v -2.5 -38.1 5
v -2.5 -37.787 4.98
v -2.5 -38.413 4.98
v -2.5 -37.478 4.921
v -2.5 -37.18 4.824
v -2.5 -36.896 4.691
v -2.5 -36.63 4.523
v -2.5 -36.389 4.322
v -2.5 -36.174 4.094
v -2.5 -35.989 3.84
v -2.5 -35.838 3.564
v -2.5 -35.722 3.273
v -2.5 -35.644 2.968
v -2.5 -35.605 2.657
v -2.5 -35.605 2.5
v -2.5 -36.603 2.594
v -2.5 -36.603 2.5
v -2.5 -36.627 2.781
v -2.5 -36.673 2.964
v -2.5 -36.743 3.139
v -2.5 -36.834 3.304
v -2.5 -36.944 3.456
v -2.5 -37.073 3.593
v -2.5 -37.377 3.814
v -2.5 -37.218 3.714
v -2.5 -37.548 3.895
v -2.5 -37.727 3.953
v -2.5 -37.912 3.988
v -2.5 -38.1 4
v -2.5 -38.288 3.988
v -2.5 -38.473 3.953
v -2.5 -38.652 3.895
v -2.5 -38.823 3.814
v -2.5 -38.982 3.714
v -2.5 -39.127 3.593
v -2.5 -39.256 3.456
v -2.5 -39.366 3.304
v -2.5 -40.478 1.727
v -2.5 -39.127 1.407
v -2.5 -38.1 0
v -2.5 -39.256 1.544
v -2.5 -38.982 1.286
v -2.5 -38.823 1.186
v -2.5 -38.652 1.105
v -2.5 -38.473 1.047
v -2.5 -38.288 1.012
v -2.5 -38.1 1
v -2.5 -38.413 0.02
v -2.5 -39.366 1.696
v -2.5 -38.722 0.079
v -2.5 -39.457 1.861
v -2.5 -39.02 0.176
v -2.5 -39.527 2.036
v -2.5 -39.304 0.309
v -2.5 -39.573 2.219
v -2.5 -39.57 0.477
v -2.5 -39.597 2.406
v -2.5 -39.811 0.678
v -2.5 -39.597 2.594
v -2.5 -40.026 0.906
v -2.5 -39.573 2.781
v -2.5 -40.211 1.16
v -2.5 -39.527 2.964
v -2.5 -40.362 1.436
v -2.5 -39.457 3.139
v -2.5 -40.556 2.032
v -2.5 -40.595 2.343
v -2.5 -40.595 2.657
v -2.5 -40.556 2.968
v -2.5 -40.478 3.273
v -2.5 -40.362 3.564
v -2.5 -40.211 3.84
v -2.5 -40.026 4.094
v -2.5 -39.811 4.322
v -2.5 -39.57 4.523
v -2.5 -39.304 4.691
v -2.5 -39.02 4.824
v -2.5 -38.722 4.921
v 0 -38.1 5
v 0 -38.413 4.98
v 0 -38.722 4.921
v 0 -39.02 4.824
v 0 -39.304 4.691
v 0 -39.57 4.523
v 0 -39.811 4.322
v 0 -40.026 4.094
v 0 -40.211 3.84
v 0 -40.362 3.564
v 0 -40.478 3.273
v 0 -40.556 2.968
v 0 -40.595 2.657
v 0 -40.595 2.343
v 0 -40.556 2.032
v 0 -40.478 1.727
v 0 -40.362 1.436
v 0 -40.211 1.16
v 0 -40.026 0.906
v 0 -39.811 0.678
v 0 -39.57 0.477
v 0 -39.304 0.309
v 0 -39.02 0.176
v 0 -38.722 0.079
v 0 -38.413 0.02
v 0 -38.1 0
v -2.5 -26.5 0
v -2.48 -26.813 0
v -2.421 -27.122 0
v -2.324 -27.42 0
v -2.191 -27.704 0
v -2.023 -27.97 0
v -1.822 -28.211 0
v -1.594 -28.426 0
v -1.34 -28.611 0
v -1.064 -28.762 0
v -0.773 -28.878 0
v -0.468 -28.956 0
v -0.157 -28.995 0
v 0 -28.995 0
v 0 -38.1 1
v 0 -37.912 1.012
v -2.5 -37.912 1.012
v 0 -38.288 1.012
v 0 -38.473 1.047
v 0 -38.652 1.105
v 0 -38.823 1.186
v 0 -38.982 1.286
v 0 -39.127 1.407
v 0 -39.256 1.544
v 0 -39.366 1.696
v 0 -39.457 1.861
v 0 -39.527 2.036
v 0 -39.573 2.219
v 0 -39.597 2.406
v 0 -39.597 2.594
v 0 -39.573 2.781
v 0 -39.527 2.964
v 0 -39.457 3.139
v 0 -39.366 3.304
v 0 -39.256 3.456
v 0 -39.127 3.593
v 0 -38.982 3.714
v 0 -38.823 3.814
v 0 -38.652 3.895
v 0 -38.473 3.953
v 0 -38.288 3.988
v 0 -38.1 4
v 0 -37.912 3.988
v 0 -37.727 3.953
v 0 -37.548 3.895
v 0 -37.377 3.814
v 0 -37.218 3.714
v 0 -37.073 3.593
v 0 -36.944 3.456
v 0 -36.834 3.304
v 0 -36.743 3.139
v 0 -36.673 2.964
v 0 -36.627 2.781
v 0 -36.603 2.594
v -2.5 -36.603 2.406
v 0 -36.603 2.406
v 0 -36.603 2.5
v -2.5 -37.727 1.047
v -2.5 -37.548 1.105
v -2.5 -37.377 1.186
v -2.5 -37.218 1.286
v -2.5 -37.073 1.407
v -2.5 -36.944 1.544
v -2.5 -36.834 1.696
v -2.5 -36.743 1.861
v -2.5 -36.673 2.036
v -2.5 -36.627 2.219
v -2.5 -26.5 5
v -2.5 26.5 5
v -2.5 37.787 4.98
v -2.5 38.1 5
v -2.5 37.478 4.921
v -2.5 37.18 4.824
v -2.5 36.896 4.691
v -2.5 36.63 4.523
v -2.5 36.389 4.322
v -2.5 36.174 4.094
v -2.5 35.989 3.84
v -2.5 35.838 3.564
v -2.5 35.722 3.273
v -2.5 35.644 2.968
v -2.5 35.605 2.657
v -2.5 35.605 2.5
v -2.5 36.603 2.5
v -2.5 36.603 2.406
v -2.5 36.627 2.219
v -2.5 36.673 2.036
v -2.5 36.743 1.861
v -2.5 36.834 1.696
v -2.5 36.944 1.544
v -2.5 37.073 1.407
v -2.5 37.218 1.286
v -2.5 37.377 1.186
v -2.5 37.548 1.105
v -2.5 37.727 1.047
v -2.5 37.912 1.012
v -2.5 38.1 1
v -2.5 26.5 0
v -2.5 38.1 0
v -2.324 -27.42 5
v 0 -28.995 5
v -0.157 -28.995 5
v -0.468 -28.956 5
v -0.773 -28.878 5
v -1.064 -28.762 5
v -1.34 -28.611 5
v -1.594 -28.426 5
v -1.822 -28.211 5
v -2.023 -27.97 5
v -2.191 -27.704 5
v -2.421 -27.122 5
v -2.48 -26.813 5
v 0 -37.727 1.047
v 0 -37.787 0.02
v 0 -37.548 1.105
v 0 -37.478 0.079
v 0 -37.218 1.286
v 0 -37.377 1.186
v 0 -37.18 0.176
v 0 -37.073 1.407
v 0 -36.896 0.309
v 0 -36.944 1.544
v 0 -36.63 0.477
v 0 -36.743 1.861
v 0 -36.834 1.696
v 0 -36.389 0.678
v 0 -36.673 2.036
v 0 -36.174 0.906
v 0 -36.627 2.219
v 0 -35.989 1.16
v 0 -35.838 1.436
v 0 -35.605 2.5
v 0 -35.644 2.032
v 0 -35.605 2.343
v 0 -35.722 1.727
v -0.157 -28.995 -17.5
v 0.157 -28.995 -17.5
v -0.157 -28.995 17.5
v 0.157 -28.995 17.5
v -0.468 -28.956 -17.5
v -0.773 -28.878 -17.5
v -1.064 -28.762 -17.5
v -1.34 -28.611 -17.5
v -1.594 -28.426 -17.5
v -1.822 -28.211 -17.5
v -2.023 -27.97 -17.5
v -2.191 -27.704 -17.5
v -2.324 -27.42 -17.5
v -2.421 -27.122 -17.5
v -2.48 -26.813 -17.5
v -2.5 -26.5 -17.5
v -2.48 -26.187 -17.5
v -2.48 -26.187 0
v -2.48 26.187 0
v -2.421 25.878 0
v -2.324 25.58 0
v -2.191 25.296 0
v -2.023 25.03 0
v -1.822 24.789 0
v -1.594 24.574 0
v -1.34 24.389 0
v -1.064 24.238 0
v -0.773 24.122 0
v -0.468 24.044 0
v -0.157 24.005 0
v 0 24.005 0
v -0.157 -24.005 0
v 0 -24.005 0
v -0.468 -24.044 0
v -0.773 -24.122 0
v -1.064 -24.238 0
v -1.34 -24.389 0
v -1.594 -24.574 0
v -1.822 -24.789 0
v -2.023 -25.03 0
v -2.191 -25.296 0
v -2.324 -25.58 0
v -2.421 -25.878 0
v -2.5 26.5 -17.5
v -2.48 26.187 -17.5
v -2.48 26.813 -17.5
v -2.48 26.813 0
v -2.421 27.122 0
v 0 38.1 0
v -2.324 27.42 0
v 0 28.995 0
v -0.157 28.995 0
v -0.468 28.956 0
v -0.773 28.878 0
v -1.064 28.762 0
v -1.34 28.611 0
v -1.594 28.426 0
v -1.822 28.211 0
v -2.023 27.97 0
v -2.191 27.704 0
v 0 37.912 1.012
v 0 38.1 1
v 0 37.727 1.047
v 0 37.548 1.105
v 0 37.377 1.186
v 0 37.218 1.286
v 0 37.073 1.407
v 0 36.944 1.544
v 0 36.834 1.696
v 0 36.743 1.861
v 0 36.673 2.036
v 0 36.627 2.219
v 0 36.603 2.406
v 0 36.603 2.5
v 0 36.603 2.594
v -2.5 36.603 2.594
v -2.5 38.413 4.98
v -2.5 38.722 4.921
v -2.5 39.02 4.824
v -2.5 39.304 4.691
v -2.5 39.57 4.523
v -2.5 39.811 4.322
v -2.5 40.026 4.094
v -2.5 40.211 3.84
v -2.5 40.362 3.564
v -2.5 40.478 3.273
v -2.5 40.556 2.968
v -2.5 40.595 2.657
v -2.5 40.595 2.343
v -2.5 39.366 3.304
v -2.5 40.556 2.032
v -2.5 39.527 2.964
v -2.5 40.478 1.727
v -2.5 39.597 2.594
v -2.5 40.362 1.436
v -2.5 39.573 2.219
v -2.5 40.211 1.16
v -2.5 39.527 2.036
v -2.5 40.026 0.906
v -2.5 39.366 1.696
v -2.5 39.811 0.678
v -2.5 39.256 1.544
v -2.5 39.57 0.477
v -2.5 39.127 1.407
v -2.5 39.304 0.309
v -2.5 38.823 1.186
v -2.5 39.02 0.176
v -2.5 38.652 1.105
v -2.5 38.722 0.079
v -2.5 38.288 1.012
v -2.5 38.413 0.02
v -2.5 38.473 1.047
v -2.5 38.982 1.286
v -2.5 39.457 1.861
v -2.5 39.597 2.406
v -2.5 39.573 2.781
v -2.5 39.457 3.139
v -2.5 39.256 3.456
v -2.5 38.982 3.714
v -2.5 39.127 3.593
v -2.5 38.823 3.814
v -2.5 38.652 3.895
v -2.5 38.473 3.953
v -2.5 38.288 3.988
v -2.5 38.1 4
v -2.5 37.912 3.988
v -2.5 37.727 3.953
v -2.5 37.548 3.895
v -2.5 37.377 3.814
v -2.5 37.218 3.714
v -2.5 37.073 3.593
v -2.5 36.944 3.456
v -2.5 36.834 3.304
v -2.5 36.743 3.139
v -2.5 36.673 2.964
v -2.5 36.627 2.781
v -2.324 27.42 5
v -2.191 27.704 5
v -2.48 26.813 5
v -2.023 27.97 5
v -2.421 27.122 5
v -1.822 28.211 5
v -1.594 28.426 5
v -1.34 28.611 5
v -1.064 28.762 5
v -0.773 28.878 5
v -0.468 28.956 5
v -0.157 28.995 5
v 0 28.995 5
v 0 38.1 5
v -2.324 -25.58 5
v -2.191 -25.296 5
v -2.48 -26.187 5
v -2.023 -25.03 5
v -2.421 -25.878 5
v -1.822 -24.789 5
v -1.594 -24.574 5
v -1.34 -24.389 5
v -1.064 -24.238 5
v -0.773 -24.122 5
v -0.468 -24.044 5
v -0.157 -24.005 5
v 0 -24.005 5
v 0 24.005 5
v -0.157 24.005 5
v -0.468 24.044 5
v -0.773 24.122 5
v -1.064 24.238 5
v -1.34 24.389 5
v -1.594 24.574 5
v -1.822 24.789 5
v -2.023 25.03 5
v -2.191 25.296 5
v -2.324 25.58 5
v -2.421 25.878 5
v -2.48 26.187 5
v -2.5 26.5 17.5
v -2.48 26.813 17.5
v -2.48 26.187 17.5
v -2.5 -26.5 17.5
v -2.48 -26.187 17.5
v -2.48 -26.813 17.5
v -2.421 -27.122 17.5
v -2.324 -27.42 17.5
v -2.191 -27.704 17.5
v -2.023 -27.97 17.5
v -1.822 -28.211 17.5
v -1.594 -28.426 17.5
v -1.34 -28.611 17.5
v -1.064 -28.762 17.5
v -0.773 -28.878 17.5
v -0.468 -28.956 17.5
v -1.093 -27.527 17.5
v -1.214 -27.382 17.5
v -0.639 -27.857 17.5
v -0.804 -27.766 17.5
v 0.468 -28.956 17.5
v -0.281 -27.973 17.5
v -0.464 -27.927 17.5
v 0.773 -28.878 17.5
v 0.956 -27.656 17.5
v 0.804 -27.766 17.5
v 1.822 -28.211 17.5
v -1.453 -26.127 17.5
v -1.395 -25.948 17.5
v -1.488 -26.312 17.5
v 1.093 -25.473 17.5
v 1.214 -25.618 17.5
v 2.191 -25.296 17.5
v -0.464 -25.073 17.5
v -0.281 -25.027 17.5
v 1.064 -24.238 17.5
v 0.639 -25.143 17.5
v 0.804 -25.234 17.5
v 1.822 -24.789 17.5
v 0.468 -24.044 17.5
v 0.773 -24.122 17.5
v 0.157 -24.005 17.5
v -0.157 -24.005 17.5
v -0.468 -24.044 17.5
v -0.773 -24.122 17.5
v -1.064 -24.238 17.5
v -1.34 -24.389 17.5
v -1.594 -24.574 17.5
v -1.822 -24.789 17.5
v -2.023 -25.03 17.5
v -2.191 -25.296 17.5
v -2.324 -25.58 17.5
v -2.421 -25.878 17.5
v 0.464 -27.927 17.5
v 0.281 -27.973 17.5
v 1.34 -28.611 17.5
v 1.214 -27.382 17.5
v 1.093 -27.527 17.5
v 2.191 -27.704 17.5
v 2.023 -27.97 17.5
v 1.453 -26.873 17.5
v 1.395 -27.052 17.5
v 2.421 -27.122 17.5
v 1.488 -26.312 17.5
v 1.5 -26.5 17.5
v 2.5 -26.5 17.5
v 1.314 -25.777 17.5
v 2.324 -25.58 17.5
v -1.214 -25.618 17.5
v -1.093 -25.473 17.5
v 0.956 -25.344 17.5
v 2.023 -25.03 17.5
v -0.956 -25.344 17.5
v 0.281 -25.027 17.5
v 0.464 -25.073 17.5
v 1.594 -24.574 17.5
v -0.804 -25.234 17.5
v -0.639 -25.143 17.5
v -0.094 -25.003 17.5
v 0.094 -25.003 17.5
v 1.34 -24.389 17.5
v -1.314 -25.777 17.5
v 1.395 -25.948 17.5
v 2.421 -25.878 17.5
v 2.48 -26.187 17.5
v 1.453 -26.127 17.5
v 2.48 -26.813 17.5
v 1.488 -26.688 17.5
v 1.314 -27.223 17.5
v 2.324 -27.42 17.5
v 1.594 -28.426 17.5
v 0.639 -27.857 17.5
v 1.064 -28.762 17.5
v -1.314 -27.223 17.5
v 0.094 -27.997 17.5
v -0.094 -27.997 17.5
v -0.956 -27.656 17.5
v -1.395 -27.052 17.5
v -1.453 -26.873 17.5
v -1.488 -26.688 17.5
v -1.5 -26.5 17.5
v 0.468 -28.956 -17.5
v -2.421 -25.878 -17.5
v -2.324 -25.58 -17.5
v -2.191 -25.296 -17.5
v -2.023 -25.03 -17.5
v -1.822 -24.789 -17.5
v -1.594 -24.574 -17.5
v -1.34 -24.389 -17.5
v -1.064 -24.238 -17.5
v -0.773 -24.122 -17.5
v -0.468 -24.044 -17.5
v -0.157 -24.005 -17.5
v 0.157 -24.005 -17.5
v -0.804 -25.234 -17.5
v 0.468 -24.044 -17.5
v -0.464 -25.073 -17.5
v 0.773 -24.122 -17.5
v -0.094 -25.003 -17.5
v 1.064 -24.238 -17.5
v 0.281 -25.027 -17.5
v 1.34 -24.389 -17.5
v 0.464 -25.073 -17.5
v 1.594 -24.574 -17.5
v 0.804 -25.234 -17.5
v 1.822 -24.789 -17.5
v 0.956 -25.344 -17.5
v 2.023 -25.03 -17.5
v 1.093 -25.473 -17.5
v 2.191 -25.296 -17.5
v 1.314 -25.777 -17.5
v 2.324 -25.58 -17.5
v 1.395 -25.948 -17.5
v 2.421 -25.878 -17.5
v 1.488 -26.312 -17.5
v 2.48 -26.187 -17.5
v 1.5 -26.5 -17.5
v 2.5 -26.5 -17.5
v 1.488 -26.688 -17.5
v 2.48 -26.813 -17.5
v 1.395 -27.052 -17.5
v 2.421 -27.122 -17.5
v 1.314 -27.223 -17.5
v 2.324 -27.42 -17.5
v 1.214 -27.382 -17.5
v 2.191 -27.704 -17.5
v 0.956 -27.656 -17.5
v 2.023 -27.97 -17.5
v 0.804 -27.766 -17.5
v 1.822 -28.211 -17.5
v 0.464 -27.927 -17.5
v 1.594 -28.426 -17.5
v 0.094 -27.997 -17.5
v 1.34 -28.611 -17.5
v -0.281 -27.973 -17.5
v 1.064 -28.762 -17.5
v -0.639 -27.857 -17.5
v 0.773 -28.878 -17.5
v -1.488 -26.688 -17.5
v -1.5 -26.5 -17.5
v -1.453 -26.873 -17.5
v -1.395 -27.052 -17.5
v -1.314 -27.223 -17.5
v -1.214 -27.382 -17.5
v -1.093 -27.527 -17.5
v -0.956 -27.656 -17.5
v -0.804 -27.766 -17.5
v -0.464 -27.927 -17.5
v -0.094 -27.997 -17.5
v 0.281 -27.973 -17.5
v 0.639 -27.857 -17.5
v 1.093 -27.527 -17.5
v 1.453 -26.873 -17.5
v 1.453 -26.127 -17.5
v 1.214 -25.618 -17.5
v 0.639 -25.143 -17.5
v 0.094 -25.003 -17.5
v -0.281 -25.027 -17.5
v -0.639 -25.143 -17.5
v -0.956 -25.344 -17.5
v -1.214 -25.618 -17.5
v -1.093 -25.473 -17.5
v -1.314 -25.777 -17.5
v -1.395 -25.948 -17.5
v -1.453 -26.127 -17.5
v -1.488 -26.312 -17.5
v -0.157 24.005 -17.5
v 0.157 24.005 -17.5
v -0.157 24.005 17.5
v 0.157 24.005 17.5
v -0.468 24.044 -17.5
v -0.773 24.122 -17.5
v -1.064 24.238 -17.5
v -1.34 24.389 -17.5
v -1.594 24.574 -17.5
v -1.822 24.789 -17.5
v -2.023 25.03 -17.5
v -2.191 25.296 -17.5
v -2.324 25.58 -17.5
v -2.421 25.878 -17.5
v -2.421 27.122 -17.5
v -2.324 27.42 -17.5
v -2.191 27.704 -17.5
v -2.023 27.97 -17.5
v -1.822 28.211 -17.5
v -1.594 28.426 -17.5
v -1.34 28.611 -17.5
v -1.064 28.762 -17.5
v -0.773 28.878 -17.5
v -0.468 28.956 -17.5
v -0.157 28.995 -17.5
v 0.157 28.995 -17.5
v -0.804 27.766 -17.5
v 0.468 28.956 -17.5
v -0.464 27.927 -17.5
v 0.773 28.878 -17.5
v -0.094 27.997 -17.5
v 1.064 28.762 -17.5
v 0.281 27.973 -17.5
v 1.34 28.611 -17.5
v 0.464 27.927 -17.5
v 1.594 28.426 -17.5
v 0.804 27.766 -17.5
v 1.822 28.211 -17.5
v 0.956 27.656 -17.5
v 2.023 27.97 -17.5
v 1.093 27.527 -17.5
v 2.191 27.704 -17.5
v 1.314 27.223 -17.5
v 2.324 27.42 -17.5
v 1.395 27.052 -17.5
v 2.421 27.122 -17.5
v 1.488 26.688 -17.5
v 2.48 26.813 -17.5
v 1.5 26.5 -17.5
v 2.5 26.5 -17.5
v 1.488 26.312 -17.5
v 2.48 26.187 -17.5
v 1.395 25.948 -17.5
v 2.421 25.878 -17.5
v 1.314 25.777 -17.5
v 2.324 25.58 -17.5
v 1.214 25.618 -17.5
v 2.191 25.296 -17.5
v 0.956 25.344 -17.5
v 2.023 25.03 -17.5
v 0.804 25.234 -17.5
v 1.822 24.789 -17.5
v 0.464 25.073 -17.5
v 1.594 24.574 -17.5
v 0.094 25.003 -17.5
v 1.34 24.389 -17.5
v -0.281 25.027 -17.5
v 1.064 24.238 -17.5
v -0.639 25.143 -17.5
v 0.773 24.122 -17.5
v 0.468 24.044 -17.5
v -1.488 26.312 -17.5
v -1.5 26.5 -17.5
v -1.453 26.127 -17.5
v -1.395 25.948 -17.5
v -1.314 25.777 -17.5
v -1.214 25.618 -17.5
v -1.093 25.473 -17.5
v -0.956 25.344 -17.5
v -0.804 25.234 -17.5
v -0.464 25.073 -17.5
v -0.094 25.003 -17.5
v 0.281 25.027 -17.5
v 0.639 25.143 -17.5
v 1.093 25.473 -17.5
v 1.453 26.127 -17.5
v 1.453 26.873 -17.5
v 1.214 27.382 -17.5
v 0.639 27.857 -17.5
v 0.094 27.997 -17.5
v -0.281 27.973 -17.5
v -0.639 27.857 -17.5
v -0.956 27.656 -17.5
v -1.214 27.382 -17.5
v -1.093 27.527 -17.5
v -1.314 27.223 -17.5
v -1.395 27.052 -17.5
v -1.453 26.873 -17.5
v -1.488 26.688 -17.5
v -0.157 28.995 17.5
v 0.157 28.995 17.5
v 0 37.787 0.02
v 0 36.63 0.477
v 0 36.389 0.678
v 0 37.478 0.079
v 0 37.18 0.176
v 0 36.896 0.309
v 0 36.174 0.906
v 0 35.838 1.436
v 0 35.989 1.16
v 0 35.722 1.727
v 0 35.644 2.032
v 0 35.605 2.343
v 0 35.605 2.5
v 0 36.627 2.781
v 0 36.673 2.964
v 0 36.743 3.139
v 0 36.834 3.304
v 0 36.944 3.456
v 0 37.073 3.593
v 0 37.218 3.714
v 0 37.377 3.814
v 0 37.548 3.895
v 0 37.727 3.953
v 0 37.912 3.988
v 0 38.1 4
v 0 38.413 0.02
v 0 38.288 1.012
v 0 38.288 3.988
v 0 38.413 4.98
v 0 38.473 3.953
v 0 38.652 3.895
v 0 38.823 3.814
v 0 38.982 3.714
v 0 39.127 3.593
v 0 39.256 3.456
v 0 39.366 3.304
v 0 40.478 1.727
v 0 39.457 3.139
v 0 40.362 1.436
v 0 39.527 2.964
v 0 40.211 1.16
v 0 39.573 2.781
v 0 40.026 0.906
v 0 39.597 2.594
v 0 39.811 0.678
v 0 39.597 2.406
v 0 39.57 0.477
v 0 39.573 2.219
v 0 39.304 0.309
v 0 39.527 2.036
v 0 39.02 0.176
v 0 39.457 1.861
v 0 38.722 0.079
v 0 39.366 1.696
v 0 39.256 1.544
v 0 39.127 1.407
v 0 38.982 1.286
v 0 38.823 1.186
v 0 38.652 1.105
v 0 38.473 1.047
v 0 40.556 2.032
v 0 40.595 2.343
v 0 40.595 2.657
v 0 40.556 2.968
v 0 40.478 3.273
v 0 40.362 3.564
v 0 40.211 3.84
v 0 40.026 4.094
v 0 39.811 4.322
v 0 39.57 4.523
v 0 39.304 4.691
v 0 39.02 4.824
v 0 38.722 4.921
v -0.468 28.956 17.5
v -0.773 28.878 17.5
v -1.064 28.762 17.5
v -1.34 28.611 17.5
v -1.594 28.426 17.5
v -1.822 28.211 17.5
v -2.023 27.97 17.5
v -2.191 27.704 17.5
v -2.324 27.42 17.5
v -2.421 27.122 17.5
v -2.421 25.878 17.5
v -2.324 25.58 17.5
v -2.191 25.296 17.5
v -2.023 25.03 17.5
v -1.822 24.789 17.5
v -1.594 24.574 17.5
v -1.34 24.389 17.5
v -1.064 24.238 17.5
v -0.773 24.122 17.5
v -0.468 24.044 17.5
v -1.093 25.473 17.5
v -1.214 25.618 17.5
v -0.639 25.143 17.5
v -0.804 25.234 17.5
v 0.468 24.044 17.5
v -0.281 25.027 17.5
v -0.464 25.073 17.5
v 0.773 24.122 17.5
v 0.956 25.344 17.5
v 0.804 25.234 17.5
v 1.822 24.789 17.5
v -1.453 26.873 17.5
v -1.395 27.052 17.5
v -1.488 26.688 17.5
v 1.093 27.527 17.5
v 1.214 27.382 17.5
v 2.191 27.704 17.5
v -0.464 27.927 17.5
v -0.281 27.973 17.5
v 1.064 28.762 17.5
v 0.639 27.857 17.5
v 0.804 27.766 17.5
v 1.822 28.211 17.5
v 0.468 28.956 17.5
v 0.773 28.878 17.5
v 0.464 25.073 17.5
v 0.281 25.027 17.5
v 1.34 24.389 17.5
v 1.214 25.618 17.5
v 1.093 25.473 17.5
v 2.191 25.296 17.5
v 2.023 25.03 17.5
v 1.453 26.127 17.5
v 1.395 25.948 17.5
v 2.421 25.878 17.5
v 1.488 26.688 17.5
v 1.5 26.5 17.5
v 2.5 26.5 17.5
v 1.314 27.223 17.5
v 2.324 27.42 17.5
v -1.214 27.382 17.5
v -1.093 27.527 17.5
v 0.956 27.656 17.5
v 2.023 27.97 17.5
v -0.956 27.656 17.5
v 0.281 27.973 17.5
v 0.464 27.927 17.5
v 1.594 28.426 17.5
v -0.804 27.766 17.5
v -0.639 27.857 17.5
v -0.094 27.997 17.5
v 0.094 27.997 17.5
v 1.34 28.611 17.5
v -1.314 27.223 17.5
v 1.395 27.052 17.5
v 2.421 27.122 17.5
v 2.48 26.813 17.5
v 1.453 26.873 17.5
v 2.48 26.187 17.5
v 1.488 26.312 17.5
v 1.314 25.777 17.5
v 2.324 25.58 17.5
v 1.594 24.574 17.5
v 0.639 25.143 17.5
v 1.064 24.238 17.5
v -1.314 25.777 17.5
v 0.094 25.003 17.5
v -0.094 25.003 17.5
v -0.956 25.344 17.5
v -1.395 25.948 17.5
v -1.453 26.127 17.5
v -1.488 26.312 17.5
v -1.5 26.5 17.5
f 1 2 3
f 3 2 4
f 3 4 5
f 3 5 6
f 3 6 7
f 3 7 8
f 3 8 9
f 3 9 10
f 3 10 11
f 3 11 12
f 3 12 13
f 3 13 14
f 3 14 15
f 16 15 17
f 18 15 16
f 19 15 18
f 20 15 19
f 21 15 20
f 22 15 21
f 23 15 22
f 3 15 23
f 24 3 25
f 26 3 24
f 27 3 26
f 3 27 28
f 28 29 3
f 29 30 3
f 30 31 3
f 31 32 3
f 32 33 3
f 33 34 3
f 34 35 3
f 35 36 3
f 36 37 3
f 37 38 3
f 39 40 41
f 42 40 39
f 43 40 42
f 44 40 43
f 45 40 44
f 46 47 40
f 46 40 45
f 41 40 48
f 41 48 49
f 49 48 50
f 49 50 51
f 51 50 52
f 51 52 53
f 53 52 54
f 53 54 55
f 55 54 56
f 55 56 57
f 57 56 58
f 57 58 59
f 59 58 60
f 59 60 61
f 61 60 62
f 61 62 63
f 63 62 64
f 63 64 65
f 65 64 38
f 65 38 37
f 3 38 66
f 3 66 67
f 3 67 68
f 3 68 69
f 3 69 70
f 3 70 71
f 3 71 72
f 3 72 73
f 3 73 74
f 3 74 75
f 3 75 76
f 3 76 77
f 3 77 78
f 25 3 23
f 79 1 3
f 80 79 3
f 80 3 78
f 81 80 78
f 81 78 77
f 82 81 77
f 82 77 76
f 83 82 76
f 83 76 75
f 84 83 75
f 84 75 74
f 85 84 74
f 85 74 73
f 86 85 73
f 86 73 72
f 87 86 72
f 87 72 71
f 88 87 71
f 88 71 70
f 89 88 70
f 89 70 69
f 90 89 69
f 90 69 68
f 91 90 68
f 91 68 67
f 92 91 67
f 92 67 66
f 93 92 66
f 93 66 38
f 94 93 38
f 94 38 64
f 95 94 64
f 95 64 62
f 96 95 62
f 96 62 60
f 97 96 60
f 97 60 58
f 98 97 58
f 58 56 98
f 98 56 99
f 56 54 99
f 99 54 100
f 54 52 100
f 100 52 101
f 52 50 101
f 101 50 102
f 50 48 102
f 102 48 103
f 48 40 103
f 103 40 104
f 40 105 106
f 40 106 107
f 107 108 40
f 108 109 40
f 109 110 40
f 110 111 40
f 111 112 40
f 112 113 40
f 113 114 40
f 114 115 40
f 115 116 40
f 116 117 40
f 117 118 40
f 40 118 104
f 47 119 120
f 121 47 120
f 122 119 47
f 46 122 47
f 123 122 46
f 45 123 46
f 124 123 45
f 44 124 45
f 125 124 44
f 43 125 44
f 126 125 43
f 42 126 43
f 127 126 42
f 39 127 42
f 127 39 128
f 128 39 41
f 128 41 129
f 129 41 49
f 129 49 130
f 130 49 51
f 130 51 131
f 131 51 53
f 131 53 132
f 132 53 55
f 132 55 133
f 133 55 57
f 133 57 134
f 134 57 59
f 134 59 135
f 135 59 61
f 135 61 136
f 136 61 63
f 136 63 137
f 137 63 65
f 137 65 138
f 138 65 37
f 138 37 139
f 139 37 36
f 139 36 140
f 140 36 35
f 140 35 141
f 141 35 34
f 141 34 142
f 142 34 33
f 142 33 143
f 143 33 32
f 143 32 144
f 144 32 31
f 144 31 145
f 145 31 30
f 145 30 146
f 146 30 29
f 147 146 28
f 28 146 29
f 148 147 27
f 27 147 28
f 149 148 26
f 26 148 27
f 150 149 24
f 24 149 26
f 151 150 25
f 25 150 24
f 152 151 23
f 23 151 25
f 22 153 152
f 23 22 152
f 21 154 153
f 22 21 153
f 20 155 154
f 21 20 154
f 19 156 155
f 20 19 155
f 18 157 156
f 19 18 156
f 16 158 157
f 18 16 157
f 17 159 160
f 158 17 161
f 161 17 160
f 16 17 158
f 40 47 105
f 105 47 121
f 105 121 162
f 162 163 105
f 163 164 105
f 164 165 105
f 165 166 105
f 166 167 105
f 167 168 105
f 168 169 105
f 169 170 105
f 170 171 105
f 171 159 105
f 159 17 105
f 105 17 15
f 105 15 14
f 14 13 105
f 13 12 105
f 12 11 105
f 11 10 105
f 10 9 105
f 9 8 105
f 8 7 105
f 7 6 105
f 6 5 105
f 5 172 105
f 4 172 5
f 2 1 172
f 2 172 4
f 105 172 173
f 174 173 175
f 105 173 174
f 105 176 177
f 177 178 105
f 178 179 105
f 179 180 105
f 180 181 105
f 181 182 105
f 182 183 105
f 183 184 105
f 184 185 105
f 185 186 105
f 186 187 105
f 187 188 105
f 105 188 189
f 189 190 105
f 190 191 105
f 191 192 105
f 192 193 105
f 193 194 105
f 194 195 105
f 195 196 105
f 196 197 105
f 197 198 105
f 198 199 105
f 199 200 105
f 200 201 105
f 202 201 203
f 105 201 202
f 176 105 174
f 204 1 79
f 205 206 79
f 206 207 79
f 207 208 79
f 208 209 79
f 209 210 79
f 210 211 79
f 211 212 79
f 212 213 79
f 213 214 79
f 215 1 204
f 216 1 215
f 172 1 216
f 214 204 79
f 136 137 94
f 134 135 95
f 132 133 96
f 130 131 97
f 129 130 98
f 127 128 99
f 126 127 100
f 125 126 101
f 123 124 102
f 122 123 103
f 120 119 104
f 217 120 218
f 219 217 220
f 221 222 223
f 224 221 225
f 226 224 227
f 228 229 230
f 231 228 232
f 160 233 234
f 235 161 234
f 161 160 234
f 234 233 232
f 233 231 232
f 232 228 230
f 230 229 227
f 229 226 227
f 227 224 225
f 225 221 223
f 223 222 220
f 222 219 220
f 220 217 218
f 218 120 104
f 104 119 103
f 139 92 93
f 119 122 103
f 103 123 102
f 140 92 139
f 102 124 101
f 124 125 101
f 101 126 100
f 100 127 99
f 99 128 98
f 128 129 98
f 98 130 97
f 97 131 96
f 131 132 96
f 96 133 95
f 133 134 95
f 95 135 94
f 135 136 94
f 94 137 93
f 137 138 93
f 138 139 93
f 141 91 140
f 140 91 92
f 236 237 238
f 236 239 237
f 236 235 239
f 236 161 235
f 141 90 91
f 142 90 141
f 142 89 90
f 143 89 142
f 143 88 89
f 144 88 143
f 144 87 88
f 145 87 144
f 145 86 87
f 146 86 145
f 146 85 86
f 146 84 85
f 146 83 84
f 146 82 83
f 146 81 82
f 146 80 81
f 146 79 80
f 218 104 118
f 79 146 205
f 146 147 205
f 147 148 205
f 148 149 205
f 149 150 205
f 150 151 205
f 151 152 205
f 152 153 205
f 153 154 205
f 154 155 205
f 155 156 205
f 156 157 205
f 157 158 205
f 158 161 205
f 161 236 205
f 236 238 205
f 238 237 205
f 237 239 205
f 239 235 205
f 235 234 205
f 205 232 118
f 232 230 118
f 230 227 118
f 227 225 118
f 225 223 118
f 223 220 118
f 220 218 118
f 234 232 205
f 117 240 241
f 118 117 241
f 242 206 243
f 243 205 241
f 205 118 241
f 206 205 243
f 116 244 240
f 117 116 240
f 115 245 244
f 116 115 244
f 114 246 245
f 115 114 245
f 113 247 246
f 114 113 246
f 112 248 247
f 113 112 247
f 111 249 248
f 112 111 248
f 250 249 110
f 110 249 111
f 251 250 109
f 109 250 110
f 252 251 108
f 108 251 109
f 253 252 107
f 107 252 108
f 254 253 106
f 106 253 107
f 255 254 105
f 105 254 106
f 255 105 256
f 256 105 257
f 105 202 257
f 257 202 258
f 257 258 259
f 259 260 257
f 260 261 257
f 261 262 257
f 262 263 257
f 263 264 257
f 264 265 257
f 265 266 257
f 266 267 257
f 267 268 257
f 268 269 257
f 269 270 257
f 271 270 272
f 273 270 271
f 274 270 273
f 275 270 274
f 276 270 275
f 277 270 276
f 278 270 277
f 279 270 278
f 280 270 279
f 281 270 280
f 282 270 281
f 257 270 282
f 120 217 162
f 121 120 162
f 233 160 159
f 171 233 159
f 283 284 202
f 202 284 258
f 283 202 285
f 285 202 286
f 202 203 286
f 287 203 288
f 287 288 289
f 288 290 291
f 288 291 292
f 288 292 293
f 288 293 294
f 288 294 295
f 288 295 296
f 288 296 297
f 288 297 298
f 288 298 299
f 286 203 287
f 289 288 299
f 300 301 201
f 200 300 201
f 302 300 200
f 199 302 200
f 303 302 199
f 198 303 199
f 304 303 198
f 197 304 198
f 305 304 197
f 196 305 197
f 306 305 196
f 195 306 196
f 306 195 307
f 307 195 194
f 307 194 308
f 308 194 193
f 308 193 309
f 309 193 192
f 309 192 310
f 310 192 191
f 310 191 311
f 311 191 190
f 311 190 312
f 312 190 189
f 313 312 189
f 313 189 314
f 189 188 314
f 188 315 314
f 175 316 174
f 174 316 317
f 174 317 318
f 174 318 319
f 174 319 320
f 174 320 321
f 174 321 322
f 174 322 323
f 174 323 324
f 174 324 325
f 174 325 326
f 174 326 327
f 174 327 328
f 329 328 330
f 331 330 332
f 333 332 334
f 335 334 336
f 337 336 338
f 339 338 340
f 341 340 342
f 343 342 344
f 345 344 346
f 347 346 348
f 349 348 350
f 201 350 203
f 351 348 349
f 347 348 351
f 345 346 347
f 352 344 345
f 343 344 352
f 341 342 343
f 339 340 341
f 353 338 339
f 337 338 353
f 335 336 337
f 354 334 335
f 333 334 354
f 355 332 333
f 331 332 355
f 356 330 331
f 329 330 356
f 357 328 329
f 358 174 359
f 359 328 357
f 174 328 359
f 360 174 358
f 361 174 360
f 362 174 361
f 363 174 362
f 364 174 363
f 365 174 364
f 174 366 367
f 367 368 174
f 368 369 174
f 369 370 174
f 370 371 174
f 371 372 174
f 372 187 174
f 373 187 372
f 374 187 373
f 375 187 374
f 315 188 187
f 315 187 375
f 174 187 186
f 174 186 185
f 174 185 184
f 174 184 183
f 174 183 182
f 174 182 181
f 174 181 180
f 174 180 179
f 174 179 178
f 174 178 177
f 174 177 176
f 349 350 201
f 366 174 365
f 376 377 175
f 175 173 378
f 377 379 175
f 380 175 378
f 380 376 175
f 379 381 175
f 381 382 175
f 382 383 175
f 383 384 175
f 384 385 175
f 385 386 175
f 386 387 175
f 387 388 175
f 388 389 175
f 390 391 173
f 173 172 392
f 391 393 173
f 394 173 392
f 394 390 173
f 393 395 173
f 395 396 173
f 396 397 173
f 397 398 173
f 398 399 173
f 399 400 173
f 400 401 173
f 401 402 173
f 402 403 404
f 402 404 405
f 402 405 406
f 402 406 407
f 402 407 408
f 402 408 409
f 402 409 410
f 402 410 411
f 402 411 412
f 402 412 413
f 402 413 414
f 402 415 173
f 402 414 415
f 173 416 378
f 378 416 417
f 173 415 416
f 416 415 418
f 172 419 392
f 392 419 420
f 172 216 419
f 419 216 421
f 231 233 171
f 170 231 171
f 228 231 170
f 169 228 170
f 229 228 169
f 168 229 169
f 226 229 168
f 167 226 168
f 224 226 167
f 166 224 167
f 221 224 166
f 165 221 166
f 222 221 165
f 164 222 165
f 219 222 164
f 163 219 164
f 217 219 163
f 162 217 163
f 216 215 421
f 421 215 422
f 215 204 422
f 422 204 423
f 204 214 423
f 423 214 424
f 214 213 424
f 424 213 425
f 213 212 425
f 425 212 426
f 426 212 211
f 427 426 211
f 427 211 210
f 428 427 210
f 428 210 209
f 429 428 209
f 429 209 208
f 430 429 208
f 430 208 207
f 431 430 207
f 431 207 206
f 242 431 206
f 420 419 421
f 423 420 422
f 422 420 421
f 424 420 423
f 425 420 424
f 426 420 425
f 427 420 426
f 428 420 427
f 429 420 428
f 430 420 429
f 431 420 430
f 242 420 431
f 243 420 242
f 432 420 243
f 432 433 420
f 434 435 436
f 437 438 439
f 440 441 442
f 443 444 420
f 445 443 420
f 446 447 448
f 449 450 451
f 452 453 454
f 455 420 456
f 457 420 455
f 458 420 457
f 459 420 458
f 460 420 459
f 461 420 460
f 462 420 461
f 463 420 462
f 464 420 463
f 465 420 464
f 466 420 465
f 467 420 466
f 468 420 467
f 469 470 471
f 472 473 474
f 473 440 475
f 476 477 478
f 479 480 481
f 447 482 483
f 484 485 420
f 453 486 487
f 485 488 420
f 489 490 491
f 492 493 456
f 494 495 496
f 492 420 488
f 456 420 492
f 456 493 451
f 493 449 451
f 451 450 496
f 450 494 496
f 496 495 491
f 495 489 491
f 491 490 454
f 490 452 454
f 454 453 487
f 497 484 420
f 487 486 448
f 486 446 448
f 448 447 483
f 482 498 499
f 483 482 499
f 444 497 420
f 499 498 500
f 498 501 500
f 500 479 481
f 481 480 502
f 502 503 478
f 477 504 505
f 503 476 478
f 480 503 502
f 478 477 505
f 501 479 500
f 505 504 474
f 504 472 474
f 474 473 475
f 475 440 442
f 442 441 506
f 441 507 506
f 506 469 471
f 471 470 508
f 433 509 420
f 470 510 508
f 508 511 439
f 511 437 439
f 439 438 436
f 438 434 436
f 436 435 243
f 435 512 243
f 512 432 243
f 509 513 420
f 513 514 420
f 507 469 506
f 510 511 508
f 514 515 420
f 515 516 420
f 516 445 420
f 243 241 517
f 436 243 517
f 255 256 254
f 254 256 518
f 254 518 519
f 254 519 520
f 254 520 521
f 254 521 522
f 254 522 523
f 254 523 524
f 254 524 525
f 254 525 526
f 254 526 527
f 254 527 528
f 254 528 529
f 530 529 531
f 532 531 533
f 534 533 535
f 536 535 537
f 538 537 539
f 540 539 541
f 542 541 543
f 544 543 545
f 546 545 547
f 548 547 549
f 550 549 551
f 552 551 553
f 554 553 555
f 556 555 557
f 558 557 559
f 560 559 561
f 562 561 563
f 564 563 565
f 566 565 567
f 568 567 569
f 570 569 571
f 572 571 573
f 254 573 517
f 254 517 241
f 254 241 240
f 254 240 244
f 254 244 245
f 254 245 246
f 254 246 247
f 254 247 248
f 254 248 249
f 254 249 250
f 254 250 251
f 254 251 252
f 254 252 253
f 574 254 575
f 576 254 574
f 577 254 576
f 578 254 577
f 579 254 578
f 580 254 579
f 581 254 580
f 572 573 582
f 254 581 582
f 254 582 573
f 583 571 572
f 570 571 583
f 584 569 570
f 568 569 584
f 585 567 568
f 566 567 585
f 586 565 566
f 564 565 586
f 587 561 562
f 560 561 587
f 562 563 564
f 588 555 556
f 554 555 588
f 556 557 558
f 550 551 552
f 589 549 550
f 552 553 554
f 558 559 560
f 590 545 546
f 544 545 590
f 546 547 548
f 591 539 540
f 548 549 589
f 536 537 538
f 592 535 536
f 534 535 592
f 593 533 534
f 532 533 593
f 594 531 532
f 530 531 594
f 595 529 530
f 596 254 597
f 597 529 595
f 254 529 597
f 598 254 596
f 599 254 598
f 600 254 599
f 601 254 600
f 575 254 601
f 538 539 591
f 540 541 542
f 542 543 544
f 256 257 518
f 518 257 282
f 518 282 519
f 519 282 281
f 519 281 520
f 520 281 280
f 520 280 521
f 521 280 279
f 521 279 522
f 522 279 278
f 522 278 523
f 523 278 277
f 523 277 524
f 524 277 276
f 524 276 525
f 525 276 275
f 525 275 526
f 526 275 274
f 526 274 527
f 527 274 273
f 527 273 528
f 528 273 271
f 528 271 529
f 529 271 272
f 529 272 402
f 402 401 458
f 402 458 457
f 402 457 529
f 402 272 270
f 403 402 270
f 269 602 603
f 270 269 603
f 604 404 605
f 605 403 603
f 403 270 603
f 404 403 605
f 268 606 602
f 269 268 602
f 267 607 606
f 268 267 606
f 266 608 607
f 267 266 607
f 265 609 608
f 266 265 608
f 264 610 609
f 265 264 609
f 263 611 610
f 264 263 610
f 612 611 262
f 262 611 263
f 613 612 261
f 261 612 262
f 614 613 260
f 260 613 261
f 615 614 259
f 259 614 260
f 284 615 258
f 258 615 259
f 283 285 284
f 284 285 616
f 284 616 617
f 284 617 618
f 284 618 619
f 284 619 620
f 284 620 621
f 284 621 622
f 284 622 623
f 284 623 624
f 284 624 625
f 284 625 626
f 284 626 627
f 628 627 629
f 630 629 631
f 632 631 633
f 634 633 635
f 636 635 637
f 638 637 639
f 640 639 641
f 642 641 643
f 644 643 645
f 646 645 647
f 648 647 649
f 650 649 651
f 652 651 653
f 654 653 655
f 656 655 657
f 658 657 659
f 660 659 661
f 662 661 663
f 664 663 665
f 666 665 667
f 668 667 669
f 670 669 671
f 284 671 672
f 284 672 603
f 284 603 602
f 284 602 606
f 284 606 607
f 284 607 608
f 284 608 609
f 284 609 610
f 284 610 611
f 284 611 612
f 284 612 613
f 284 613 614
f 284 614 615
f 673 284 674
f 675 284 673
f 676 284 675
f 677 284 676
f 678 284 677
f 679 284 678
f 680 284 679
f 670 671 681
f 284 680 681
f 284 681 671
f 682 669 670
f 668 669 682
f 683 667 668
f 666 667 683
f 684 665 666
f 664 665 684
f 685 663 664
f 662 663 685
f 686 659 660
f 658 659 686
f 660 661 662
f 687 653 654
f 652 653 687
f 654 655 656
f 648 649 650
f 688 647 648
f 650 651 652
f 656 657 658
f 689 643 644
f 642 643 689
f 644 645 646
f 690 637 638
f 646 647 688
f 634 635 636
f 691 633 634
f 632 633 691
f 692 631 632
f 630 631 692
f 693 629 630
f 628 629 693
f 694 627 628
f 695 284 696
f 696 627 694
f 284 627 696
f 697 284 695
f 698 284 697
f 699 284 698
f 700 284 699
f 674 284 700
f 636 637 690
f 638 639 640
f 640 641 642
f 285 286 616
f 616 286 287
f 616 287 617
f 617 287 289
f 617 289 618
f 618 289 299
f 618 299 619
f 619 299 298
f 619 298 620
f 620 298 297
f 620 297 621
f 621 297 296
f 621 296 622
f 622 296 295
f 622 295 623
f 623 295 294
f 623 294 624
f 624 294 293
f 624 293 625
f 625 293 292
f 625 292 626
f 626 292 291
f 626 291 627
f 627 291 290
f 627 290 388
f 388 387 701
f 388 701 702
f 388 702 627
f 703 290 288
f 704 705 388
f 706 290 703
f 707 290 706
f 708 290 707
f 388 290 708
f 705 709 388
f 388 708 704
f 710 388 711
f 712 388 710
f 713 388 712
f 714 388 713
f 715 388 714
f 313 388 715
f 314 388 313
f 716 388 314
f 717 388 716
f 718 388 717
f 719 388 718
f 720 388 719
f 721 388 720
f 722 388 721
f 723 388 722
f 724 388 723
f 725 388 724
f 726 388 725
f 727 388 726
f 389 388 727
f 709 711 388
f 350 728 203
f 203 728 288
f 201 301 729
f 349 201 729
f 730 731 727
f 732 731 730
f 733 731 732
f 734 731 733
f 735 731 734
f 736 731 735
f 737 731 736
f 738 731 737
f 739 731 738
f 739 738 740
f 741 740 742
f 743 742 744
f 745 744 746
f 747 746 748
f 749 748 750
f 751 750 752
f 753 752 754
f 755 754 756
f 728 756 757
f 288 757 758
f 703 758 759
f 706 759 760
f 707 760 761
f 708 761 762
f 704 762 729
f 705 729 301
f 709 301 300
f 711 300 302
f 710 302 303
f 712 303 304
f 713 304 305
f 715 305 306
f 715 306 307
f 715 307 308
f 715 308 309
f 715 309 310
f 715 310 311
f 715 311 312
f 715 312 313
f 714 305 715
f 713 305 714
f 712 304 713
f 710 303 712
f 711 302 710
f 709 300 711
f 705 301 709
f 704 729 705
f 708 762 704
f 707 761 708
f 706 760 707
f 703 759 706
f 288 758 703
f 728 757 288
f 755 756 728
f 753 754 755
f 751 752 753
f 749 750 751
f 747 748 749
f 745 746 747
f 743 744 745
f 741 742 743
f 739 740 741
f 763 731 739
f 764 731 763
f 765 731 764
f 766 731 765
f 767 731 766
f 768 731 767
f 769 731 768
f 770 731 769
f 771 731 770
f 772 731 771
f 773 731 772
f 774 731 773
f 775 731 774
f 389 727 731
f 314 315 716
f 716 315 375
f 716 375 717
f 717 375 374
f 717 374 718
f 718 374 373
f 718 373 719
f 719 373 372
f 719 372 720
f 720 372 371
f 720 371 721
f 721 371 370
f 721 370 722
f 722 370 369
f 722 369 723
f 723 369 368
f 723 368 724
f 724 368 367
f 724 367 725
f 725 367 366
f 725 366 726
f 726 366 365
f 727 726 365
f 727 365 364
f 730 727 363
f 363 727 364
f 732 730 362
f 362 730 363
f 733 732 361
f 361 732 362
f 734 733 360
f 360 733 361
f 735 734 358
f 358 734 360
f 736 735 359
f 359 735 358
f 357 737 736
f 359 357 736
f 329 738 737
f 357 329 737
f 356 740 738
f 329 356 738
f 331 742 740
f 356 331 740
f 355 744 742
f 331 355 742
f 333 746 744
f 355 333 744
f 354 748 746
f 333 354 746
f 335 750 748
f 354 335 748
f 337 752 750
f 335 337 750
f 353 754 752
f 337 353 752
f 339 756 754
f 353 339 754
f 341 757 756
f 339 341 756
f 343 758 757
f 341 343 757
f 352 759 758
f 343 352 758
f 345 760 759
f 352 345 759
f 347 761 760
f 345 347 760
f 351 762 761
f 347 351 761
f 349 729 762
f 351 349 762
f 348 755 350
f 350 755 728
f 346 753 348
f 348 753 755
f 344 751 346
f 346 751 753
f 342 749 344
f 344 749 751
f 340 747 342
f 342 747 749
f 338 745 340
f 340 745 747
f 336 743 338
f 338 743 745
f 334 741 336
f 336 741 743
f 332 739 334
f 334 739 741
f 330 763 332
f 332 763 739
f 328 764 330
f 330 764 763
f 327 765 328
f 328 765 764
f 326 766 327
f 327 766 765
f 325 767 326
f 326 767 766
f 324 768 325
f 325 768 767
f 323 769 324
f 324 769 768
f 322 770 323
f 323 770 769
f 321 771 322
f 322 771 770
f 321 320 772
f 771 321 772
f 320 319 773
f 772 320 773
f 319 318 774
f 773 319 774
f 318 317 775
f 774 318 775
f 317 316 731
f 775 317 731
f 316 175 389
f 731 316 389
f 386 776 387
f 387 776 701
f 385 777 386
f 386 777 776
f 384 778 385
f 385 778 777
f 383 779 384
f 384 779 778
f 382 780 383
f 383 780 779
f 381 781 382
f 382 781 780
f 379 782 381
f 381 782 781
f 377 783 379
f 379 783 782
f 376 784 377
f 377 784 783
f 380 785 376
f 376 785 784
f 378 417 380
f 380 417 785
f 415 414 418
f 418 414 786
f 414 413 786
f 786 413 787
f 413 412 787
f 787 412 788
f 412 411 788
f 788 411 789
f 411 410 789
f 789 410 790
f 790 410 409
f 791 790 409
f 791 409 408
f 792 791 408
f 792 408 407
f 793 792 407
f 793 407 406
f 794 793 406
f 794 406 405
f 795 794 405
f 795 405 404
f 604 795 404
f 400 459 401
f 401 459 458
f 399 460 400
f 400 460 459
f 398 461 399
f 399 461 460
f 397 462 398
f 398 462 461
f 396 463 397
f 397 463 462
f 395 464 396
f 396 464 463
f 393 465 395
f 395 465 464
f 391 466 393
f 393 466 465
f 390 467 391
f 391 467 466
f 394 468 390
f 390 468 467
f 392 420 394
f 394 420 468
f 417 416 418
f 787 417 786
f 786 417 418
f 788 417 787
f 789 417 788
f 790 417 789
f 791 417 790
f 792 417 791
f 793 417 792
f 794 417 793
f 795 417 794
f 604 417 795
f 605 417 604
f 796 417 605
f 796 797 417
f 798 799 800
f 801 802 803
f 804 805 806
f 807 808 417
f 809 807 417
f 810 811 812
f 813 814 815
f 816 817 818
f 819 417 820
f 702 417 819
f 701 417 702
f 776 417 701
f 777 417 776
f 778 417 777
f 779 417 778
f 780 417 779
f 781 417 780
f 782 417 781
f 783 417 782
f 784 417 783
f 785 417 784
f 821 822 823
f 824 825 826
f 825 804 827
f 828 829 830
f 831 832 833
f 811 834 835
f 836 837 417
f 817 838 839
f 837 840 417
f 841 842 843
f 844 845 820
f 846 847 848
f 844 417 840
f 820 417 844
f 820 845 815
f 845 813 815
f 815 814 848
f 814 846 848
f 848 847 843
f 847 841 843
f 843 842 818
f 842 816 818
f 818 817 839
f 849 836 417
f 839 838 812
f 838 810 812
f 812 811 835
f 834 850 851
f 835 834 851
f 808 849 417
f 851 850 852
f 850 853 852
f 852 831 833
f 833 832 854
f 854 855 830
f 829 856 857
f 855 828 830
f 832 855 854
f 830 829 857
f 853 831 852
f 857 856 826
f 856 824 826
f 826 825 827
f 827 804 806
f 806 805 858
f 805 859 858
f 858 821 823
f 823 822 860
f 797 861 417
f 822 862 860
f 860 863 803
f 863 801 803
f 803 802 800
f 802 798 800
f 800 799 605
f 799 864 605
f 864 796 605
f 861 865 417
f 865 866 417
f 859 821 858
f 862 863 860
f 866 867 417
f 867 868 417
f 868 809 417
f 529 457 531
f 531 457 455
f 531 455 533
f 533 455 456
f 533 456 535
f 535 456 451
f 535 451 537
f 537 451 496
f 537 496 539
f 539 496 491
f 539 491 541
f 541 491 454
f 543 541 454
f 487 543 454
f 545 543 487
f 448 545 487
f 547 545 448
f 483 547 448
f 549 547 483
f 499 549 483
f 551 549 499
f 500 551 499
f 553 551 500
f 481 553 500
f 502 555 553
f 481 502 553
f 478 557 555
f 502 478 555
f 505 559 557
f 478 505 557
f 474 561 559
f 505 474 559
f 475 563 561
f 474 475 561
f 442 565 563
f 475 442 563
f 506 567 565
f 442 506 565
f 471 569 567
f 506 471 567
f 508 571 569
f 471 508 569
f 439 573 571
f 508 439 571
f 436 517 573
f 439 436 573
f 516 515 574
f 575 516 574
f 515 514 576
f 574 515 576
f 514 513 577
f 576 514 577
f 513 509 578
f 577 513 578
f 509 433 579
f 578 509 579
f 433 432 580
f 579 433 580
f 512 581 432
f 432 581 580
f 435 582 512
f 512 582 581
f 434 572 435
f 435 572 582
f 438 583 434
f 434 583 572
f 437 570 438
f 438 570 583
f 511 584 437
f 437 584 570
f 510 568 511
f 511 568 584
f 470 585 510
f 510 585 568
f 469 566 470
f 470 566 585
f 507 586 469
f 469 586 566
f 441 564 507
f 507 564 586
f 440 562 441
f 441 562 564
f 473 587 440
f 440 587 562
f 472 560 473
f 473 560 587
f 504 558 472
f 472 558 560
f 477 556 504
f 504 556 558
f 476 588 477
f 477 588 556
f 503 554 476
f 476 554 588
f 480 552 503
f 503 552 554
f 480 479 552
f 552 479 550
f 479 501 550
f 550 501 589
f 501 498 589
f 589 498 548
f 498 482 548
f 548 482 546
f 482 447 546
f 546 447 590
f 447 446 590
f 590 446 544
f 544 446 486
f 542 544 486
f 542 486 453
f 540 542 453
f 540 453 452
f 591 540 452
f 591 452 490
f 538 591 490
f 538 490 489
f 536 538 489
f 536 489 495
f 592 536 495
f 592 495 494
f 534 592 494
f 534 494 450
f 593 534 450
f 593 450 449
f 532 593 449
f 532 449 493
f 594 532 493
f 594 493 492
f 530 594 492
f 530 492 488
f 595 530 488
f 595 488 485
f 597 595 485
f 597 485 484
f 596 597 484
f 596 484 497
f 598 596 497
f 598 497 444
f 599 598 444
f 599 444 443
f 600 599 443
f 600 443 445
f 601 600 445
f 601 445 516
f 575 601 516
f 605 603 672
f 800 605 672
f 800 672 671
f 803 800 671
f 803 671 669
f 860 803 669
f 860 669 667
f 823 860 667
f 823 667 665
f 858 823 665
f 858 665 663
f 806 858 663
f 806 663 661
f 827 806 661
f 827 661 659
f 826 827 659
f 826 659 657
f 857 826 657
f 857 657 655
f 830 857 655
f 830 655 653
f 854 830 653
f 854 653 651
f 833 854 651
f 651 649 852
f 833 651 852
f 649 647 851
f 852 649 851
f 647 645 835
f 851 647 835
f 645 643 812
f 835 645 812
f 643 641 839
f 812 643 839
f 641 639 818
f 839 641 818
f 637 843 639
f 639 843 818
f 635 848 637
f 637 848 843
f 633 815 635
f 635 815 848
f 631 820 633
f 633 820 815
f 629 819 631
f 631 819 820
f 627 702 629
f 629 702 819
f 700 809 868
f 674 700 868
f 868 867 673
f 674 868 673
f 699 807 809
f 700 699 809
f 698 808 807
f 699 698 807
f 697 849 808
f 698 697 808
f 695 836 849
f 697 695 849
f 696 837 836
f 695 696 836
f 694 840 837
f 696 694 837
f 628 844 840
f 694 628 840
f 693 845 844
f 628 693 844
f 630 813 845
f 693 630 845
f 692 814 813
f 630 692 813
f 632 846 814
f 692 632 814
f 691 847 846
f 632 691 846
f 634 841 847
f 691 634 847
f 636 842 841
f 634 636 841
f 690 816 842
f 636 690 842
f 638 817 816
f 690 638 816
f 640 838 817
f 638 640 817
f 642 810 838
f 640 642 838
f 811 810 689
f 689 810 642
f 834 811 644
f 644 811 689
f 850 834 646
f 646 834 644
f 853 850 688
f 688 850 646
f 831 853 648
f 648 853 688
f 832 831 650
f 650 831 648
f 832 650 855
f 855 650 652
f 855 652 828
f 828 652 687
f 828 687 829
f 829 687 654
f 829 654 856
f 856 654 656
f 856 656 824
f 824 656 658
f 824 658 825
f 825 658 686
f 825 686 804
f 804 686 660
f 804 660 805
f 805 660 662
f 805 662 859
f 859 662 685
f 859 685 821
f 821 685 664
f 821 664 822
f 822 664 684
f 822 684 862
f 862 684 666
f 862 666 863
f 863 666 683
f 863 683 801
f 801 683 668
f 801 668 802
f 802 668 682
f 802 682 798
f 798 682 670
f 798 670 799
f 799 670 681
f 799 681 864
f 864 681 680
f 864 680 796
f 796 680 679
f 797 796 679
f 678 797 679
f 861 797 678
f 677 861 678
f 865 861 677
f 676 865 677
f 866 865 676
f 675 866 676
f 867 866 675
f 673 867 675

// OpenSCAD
// all in mm
cubieboard_pitch = 53;
ssd_pitch        = 76.2;
material         = 1;
hole_diameter    = 3;
standoff_height  = 35;
u                = 10;
$fn              = 50;
height           = (2 * material) + hole_diameter;

difference() {
	union() {
		translate(v = [-height/2, -ssd_pitch/2, 0]) {
			cube([height/2, ssd_pitch, height]);
		}
	
		translate(v = [0, -cubieboard_pitch/2, -standoff_height/2]) {
			cylinder(h=standoff_height, r=height/2);
		}
	
		translate(v = [0, cubieboard_pitch/2, -standoff_height/2]) {
			cylinder(h=standoff_height, r=height/2);
		}

		translate(v = [-height/2, -ssd_pitch/2, height/2]) {
			rotate(a = [0, 90, 0]) { 		
				cylinder(h=height/2, r=height/2);
			}
		}

		translate(v = [-height/2, ssd_pitch/2, height/2]) {
			rotate(a = [0, 90, 0]) { 		
				cylinder(h=height/2, r=height/2);
			}
		}
	}

	translate(v = [0, -cubieboard_pitch/2, -(standoff_height+u)/2]) {
		cylinder(h=standoff_height+u, r=hole_diameter/2);
	}

	translate(v = [0, cubieboard_pitch/2, -(standoff_height+u)/2]) {
		cylinder(h=standoff_height+u, r=hole_diameter/2);
	}

	translate(v = [-(height+u)/2, -ssd_pitch/2, height/2]) {
		rotate(a = [0, 90, 0]) { 		
			cylinder(h=height+u/2, r=hole_diameter/2);
		}
	}

	translate(v = [-(height+u)/2, ssd_pitch/2, height/2]) {
		rotate(a = [0, 90, 0]) { 		
			cylinder(h=height+u/2, r=hole_diameter/2);
		}
	}
}
